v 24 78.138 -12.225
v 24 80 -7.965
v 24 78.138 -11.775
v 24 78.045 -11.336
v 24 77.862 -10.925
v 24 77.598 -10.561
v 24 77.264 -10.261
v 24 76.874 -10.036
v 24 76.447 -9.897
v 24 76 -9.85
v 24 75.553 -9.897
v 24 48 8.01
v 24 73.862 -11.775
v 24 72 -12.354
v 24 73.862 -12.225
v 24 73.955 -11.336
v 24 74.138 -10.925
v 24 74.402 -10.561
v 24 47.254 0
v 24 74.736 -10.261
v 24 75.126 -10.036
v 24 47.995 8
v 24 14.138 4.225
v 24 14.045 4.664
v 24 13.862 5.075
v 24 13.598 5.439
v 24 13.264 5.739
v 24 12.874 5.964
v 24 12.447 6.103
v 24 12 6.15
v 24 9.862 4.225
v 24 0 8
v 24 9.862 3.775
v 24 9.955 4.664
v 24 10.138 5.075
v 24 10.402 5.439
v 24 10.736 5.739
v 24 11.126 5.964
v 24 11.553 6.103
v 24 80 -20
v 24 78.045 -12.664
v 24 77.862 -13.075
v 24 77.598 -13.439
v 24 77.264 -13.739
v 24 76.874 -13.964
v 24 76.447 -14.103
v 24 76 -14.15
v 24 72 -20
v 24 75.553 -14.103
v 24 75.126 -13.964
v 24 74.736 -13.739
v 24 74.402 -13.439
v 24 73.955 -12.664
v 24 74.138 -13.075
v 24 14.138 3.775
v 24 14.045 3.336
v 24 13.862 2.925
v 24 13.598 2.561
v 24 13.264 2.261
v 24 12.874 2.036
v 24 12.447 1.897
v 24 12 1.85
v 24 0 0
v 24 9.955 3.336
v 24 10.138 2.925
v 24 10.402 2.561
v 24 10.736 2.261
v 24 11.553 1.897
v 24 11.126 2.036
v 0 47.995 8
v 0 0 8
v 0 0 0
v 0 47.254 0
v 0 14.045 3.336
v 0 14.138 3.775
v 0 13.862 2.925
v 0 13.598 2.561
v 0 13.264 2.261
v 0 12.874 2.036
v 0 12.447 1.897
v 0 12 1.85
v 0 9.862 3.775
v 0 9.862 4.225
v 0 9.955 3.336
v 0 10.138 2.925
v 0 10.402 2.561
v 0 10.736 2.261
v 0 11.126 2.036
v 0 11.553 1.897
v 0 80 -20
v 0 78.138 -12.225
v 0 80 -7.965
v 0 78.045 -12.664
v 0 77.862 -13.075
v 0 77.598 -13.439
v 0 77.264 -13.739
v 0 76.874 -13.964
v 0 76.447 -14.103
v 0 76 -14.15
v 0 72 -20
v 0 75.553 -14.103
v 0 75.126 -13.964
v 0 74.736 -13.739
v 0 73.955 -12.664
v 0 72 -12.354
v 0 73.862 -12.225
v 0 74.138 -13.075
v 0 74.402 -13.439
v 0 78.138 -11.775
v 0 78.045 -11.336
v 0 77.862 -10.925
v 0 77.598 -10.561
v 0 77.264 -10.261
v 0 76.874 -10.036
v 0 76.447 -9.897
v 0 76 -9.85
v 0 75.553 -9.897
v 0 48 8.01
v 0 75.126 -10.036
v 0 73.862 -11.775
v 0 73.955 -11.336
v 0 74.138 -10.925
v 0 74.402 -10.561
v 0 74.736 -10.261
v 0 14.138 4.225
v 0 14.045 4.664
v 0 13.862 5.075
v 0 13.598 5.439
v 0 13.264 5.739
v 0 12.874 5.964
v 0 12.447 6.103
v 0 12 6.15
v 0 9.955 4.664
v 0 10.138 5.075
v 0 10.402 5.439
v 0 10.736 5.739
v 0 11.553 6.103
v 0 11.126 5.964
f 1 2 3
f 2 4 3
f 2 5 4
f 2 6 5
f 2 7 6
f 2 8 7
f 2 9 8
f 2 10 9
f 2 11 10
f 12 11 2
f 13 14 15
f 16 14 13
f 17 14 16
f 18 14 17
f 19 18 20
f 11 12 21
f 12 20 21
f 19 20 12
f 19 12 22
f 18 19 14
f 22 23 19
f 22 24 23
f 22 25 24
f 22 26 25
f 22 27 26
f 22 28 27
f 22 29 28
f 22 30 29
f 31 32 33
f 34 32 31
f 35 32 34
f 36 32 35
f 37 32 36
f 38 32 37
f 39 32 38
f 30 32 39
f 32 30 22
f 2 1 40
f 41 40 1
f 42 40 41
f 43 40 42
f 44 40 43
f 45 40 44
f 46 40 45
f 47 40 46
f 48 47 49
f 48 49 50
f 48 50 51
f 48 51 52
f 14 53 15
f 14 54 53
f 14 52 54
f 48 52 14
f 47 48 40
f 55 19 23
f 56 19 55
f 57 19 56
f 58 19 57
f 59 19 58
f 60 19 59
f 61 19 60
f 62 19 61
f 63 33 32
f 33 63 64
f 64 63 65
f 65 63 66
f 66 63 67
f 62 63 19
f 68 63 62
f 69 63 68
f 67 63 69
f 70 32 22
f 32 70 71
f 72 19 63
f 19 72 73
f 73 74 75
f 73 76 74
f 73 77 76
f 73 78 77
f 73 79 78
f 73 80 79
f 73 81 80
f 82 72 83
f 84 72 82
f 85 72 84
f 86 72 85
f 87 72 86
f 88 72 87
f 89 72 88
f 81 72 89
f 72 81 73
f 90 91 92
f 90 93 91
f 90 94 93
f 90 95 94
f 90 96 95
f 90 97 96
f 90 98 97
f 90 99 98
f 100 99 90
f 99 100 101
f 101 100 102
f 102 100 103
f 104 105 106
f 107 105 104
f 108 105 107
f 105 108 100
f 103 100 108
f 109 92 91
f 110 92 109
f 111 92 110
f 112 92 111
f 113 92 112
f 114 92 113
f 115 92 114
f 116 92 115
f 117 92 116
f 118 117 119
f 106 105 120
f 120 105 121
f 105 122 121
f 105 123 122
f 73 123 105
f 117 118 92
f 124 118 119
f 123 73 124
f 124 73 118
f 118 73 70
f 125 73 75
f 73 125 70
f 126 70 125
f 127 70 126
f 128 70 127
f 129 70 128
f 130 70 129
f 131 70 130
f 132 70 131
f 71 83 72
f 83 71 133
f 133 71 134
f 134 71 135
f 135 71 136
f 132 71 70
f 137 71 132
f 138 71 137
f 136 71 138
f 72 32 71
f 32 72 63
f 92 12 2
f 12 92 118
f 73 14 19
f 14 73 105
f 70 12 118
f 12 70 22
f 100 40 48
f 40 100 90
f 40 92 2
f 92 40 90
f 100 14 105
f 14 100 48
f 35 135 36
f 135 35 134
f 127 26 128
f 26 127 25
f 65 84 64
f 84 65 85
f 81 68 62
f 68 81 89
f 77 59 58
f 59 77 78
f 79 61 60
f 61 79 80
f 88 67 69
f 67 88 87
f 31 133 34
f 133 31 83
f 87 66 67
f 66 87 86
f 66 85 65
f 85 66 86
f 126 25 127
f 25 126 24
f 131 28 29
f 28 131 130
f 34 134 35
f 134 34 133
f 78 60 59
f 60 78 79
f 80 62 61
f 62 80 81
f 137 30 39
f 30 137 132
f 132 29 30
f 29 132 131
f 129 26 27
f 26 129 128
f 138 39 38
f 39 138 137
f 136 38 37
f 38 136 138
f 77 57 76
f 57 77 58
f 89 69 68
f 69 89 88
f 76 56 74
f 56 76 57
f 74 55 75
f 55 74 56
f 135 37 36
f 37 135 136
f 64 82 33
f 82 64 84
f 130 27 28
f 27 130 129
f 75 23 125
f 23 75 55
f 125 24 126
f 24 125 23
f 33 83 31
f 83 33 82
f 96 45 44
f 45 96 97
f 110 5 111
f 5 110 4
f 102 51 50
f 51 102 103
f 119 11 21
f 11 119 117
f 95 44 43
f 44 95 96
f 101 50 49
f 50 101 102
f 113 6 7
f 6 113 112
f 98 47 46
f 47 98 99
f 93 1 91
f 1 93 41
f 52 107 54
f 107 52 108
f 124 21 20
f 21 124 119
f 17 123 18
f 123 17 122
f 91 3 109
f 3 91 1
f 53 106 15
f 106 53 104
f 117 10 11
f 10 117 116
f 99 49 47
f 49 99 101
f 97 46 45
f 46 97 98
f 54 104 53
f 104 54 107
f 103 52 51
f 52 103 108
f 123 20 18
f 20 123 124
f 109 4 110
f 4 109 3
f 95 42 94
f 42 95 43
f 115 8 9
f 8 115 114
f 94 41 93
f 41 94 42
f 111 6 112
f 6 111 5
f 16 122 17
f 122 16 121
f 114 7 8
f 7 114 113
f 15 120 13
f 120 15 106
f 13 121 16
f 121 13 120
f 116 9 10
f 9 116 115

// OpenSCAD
// entry track
difference() {
union() {
    // horizontal piece
    cube([24,48,8]);
    
    // angled piece
    translate([0,44.65,1.3])
    rotate([333.47,0,0])
    cube([24,35.85,7.5]);
    
    // vertical piece
    translate([0,72,-20])
    cube([24,8,12]);
}
    // left hole
    translate([-4,12,4])
    rotate([0,90,0])
    cylinder(r=2.15,60, $fn=30);

    // far right hole
    translate([-4,76,-12])
    rotate([0,90,0])
    cylinder(r=2.15,60, $fn=30);

    // slight clean up on right
    translate([0,80,-30])
    cube([40,10,30]);
}
